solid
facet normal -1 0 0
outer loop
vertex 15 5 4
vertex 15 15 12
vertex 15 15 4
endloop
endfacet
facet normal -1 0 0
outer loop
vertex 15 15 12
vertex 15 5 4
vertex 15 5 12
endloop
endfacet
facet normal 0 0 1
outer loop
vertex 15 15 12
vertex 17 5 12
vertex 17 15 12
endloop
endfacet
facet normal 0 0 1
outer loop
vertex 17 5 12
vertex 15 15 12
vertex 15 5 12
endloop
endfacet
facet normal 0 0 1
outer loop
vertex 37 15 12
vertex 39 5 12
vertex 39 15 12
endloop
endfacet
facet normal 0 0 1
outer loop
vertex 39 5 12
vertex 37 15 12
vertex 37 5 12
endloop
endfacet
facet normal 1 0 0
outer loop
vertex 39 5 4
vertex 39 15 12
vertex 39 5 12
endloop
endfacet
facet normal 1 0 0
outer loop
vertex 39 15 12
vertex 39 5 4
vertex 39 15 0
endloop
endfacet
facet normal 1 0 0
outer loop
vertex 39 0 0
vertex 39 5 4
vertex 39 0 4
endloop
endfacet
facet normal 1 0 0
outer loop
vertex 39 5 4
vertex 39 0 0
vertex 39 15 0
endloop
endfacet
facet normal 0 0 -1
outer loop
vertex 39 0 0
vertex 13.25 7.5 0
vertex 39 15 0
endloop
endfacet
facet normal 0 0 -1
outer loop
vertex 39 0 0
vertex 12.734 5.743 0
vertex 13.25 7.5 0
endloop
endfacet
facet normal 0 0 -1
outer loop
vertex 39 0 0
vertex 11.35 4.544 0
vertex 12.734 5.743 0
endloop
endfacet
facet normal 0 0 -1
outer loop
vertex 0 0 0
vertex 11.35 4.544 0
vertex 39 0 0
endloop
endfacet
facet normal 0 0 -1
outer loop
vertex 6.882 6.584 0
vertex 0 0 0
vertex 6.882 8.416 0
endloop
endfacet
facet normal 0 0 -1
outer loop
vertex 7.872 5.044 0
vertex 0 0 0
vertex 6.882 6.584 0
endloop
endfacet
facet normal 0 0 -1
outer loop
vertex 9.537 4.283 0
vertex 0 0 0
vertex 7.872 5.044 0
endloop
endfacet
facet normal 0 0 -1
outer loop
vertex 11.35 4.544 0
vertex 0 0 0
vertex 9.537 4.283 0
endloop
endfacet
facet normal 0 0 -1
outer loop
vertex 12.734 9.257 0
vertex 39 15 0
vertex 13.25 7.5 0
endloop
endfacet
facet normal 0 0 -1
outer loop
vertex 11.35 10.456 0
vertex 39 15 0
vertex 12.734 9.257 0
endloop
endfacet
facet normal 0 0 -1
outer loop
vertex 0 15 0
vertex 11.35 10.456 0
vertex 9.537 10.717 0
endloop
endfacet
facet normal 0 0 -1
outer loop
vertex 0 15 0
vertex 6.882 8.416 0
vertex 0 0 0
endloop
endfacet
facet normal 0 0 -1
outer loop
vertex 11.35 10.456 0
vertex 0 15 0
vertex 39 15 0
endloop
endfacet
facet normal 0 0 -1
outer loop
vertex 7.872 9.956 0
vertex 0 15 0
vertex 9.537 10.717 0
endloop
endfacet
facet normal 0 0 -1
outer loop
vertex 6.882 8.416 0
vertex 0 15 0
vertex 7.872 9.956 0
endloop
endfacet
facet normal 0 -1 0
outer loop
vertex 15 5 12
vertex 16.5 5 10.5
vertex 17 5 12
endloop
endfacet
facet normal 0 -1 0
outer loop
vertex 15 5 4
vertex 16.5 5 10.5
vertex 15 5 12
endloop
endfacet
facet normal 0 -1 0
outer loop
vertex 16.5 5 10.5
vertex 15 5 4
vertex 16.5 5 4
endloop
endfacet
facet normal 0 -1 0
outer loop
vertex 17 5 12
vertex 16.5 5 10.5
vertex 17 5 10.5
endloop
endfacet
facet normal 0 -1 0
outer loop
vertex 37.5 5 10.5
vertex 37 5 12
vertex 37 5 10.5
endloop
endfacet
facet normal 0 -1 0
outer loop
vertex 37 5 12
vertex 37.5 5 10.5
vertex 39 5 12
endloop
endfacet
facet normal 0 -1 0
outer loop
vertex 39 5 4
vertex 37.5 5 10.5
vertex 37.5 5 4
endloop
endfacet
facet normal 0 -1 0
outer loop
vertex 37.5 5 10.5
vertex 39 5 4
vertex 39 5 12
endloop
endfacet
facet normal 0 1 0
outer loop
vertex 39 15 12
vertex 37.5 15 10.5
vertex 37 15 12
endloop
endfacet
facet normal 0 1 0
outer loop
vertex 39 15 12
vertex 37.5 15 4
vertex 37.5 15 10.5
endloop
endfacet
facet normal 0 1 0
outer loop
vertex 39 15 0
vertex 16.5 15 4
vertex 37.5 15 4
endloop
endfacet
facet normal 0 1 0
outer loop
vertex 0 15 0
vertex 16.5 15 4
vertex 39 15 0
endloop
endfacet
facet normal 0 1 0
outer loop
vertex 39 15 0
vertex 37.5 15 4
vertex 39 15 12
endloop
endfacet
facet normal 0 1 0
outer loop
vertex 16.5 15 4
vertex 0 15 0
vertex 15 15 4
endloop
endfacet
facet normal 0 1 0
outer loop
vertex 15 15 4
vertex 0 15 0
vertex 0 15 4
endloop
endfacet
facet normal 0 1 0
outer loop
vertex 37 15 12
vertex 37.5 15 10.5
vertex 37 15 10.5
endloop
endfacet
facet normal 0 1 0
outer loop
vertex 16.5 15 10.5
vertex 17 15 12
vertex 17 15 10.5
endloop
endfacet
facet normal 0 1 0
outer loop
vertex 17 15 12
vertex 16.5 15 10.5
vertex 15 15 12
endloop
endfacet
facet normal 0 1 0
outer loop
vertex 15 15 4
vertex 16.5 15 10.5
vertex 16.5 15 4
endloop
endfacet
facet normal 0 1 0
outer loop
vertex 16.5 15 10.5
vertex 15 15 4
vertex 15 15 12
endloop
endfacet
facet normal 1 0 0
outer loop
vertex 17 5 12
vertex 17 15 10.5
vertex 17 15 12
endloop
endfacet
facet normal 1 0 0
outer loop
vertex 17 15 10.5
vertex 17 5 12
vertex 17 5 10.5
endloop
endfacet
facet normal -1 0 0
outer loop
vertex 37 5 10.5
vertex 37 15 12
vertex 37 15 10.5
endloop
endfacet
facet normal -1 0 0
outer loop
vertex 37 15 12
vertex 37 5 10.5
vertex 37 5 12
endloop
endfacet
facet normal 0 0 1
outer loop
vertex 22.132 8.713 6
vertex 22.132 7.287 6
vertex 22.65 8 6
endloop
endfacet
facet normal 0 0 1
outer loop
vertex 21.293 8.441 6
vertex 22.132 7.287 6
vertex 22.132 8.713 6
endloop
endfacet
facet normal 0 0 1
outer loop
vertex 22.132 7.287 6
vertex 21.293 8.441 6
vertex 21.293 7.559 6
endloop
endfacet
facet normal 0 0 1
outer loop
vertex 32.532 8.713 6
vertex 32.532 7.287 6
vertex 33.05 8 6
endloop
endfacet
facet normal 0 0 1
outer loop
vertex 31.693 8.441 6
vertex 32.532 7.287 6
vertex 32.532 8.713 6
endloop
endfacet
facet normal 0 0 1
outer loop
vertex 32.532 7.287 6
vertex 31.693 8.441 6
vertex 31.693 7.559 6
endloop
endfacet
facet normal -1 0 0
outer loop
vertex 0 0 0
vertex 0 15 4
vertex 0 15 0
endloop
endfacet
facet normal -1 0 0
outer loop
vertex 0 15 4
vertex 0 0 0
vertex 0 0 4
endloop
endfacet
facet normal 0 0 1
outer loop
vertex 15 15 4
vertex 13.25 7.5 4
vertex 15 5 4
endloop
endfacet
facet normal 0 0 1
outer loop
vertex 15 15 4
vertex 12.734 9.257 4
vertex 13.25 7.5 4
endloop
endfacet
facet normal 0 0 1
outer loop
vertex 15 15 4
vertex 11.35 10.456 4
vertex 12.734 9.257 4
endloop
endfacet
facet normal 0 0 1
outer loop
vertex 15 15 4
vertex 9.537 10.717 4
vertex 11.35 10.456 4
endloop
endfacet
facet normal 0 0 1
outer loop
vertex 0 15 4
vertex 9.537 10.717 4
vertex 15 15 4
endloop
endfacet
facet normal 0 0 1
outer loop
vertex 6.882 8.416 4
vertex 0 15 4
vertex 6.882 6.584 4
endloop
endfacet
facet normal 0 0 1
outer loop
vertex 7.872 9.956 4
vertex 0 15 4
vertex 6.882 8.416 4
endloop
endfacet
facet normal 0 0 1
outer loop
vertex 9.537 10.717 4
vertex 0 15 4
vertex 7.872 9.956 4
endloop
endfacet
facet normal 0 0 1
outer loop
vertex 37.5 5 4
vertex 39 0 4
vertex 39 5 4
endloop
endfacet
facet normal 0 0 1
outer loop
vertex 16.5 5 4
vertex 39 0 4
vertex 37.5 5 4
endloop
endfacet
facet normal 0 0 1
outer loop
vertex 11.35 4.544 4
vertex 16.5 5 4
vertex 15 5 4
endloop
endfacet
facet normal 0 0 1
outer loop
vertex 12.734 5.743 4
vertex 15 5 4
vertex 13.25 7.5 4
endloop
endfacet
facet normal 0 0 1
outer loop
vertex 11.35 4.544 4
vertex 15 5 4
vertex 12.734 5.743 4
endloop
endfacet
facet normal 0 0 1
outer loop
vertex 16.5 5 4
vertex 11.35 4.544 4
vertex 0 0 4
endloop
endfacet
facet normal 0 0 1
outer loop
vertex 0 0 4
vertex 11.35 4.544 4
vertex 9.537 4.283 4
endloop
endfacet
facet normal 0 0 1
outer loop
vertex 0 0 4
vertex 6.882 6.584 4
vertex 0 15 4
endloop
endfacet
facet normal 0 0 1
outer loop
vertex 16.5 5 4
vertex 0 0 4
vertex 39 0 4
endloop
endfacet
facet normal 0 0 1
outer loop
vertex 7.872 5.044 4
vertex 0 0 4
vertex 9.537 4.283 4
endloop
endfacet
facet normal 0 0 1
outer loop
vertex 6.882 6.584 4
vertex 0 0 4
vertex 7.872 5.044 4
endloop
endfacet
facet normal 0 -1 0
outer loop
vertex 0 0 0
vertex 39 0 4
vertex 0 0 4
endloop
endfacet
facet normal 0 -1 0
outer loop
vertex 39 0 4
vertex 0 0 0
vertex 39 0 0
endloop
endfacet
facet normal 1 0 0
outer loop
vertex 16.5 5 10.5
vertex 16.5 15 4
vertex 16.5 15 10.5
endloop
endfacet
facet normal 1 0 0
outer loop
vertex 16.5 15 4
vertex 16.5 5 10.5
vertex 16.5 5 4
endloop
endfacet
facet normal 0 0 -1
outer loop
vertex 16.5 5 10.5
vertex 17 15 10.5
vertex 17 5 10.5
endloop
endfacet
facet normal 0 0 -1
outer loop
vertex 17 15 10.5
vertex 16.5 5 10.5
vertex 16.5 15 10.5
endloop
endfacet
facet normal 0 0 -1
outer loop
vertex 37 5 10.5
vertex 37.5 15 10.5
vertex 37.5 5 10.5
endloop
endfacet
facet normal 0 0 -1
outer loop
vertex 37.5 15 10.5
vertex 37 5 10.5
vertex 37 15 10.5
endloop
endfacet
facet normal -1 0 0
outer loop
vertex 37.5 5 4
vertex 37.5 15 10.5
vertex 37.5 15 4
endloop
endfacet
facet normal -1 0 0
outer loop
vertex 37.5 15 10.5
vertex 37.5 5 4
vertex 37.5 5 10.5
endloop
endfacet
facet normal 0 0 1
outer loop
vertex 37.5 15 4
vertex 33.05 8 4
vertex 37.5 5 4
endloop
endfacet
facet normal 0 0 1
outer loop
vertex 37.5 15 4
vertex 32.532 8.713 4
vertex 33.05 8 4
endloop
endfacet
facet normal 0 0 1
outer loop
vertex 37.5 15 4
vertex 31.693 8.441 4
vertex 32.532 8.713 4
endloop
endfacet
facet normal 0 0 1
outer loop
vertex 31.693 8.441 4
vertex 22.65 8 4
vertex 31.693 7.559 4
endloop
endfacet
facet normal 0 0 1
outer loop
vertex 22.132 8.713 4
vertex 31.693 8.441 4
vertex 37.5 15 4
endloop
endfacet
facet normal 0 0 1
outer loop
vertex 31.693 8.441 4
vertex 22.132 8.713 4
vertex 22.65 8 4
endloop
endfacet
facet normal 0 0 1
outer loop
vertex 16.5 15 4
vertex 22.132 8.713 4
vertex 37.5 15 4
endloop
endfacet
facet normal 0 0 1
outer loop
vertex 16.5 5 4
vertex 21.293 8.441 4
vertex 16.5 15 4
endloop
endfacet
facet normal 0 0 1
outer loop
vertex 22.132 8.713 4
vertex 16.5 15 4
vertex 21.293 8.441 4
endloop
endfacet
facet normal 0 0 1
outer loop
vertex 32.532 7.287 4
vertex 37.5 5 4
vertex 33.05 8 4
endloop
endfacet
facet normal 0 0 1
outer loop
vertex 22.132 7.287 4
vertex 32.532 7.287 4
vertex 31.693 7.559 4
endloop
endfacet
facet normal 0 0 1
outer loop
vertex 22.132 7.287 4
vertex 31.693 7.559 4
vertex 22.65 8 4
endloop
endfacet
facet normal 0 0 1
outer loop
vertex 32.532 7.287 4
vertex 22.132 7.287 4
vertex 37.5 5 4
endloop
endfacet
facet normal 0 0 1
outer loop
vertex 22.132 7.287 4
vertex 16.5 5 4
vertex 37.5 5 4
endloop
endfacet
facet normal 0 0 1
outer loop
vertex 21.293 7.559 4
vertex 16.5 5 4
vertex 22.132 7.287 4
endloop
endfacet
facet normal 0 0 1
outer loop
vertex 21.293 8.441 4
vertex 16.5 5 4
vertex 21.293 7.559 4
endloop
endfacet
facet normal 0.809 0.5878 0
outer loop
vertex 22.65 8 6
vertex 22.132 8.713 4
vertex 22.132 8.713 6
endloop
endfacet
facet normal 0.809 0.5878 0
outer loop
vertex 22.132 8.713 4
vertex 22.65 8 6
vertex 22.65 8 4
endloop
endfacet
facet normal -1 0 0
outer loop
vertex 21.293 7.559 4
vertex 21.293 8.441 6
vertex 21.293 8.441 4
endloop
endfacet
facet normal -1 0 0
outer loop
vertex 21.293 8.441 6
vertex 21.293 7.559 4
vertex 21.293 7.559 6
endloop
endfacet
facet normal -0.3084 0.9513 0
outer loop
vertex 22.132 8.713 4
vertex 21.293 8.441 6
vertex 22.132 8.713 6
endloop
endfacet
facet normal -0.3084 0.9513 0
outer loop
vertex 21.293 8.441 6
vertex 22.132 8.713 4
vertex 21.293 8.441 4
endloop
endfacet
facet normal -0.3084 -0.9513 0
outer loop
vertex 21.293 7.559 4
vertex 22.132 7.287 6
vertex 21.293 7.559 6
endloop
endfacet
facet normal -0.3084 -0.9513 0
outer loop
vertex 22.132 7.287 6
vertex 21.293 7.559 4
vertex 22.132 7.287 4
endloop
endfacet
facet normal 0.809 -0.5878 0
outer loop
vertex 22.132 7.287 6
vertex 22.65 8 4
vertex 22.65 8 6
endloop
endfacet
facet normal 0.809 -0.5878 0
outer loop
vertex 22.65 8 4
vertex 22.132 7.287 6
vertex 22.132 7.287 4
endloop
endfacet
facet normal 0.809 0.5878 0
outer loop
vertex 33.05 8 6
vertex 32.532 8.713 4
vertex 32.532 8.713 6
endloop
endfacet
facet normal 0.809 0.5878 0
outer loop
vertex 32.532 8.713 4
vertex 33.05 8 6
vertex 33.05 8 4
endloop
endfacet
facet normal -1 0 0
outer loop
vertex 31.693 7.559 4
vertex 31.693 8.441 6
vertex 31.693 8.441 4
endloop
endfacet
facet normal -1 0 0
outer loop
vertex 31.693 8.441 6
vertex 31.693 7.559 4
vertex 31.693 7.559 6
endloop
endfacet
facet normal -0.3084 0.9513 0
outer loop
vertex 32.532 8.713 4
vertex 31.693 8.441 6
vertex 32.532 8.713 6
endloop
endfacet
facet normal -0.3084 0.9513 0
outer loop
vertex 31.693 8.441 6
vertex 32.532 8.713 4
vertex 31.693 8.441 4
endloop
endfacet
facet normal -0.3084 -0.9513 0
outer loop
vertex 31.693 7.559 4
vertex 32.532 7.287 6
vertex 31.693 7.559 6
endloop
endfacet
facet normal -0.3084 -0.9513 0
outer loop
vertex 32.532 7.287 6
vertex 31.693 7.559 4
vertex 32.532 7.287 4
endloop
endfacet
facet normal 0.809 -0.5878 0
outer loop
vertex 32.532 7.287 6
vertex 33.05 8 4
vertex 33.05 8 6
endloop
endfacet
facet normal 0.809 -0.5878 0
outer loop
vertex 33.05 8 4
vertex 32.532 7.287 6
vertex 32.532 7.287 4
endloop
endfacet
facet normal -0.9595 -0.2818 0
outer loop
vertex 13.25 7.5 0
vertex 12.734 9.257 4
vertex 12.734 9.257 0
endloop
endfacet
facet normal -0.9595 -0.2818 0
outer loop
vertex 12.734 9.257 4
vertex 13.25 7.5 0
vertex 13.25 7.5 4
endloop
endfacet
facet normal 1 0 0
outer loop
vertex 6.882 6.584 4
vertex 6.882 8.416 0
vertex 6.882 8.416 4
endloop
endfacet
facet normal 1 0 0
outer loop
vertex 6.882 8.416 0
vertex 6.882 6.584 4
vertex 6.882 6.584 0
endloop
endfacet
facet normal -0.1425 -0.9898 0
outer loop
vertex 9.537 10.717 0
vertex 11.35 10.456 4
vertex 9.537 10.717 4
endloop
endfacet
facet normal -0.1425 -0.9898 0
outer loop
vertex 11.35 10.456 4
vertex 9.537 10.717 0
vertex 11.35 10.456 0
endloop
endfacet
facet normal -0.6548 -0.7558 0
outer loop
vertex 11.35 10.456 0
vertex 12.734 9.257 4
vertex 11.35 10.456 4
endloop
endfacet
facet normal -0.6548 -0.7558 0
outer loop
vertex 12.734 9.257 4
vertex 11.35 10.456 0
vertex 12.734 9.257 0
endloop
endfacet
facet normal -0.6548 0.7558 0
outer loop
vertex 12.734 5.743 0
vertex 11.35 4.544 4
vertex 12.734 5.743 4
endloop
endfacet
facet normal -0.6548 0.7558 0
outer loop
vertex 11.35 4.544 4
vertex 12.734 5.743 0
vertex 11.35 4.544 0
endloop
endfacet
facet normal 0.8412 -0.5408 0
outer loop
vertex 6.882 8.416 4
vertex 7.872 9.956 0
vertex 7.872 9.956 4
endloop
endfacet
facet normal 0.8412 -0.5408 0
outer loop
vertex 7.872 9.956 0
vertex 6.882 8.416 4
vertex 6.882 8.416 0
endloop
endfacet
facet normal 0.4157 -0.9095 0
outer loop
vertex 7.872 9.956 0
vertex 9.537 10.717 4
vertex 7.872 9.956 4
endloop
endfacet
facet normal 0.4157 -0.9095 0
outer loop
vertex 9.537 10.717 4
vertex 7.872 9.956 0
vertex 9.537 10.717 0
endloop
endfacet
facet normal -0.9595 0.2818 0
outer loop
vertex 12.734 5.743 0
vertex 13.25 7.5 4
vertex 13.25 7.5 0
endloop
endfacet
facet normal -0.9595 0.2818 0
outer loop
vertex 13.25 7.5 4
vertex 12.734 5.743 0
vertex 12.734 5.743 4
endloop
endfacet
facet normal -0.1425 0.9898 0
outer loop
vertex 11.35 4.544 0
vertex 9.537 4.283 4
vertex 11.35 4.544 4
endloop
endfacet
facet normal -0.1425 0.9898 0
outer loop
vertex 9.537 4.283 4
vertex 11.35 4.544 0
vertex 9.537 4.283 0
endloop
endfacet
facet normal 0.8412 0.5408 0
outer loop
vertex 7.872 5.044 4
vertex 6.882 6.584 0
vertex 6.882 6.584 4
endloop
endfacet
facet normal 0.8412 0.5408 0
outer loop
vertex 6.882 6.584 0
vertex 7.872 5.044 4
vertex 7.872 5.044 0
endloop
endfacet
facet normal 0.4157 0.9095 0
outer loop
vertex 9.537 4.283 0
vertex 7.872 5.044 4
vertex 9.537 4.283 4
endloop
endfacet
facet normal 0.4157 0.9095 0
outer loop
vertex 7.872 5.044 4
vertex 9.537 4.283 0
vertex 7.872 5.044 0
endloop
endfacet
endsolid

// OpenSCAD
// MakerSlide limit switch mounting plate. Measurments adjusted for
// clearance on one particular printer. YMMV.

module switch()
{
    difference() {
        union() {
            cube([21, 10, 6.5]);
            cube([10.6, 11, 6.5]);
        }
        translate([0, 3.0, -1])
            union() {
                translate([5.4, 0, 0])
                    cylinder(d=1.5, h=10);
                translate([15.8, 0, 0])
                    cylinder(d=1.5, h=10);
            }
    }
    translate([2.7, 11.5, 0]) {
        union() {
            cube([16.2, 0.3, 4.3]);
            translate([14, 3.2, 0])
                cylinder(d=5.0, h=3.0);
        }
    }
}


module plate(thickness=4.0, width=39.0, height=15.0)
{
    difference() {
        union() {
            // Main plate
            cube([width, height, thickness]);
            // Retention body
            translate([width-24, height-10])
                difference() {
                    cube([24, 10, thickness+8]);
                    translate([2, 0, thickness+2])
                        cube([20, 10, thickness+8]);
                }
        }
        // Screw hole.
        translate([10, height/2, -0.1])
            cylinder(d=6.5, h=thickness+0.2);
        // Switch
        translate([width-22.5, height-10, thickness])
            switch();
    }
}


plate();


// Test fit into extrusion.
/*
translate([0, 50, 0]) rotate([90, 0, 0])
    linear_extrude(height=50, convexity=10)
        scale([25.4, 25.4, 25.4])
            import(file="b17022_rev_2_recenter.dxf");
*/
